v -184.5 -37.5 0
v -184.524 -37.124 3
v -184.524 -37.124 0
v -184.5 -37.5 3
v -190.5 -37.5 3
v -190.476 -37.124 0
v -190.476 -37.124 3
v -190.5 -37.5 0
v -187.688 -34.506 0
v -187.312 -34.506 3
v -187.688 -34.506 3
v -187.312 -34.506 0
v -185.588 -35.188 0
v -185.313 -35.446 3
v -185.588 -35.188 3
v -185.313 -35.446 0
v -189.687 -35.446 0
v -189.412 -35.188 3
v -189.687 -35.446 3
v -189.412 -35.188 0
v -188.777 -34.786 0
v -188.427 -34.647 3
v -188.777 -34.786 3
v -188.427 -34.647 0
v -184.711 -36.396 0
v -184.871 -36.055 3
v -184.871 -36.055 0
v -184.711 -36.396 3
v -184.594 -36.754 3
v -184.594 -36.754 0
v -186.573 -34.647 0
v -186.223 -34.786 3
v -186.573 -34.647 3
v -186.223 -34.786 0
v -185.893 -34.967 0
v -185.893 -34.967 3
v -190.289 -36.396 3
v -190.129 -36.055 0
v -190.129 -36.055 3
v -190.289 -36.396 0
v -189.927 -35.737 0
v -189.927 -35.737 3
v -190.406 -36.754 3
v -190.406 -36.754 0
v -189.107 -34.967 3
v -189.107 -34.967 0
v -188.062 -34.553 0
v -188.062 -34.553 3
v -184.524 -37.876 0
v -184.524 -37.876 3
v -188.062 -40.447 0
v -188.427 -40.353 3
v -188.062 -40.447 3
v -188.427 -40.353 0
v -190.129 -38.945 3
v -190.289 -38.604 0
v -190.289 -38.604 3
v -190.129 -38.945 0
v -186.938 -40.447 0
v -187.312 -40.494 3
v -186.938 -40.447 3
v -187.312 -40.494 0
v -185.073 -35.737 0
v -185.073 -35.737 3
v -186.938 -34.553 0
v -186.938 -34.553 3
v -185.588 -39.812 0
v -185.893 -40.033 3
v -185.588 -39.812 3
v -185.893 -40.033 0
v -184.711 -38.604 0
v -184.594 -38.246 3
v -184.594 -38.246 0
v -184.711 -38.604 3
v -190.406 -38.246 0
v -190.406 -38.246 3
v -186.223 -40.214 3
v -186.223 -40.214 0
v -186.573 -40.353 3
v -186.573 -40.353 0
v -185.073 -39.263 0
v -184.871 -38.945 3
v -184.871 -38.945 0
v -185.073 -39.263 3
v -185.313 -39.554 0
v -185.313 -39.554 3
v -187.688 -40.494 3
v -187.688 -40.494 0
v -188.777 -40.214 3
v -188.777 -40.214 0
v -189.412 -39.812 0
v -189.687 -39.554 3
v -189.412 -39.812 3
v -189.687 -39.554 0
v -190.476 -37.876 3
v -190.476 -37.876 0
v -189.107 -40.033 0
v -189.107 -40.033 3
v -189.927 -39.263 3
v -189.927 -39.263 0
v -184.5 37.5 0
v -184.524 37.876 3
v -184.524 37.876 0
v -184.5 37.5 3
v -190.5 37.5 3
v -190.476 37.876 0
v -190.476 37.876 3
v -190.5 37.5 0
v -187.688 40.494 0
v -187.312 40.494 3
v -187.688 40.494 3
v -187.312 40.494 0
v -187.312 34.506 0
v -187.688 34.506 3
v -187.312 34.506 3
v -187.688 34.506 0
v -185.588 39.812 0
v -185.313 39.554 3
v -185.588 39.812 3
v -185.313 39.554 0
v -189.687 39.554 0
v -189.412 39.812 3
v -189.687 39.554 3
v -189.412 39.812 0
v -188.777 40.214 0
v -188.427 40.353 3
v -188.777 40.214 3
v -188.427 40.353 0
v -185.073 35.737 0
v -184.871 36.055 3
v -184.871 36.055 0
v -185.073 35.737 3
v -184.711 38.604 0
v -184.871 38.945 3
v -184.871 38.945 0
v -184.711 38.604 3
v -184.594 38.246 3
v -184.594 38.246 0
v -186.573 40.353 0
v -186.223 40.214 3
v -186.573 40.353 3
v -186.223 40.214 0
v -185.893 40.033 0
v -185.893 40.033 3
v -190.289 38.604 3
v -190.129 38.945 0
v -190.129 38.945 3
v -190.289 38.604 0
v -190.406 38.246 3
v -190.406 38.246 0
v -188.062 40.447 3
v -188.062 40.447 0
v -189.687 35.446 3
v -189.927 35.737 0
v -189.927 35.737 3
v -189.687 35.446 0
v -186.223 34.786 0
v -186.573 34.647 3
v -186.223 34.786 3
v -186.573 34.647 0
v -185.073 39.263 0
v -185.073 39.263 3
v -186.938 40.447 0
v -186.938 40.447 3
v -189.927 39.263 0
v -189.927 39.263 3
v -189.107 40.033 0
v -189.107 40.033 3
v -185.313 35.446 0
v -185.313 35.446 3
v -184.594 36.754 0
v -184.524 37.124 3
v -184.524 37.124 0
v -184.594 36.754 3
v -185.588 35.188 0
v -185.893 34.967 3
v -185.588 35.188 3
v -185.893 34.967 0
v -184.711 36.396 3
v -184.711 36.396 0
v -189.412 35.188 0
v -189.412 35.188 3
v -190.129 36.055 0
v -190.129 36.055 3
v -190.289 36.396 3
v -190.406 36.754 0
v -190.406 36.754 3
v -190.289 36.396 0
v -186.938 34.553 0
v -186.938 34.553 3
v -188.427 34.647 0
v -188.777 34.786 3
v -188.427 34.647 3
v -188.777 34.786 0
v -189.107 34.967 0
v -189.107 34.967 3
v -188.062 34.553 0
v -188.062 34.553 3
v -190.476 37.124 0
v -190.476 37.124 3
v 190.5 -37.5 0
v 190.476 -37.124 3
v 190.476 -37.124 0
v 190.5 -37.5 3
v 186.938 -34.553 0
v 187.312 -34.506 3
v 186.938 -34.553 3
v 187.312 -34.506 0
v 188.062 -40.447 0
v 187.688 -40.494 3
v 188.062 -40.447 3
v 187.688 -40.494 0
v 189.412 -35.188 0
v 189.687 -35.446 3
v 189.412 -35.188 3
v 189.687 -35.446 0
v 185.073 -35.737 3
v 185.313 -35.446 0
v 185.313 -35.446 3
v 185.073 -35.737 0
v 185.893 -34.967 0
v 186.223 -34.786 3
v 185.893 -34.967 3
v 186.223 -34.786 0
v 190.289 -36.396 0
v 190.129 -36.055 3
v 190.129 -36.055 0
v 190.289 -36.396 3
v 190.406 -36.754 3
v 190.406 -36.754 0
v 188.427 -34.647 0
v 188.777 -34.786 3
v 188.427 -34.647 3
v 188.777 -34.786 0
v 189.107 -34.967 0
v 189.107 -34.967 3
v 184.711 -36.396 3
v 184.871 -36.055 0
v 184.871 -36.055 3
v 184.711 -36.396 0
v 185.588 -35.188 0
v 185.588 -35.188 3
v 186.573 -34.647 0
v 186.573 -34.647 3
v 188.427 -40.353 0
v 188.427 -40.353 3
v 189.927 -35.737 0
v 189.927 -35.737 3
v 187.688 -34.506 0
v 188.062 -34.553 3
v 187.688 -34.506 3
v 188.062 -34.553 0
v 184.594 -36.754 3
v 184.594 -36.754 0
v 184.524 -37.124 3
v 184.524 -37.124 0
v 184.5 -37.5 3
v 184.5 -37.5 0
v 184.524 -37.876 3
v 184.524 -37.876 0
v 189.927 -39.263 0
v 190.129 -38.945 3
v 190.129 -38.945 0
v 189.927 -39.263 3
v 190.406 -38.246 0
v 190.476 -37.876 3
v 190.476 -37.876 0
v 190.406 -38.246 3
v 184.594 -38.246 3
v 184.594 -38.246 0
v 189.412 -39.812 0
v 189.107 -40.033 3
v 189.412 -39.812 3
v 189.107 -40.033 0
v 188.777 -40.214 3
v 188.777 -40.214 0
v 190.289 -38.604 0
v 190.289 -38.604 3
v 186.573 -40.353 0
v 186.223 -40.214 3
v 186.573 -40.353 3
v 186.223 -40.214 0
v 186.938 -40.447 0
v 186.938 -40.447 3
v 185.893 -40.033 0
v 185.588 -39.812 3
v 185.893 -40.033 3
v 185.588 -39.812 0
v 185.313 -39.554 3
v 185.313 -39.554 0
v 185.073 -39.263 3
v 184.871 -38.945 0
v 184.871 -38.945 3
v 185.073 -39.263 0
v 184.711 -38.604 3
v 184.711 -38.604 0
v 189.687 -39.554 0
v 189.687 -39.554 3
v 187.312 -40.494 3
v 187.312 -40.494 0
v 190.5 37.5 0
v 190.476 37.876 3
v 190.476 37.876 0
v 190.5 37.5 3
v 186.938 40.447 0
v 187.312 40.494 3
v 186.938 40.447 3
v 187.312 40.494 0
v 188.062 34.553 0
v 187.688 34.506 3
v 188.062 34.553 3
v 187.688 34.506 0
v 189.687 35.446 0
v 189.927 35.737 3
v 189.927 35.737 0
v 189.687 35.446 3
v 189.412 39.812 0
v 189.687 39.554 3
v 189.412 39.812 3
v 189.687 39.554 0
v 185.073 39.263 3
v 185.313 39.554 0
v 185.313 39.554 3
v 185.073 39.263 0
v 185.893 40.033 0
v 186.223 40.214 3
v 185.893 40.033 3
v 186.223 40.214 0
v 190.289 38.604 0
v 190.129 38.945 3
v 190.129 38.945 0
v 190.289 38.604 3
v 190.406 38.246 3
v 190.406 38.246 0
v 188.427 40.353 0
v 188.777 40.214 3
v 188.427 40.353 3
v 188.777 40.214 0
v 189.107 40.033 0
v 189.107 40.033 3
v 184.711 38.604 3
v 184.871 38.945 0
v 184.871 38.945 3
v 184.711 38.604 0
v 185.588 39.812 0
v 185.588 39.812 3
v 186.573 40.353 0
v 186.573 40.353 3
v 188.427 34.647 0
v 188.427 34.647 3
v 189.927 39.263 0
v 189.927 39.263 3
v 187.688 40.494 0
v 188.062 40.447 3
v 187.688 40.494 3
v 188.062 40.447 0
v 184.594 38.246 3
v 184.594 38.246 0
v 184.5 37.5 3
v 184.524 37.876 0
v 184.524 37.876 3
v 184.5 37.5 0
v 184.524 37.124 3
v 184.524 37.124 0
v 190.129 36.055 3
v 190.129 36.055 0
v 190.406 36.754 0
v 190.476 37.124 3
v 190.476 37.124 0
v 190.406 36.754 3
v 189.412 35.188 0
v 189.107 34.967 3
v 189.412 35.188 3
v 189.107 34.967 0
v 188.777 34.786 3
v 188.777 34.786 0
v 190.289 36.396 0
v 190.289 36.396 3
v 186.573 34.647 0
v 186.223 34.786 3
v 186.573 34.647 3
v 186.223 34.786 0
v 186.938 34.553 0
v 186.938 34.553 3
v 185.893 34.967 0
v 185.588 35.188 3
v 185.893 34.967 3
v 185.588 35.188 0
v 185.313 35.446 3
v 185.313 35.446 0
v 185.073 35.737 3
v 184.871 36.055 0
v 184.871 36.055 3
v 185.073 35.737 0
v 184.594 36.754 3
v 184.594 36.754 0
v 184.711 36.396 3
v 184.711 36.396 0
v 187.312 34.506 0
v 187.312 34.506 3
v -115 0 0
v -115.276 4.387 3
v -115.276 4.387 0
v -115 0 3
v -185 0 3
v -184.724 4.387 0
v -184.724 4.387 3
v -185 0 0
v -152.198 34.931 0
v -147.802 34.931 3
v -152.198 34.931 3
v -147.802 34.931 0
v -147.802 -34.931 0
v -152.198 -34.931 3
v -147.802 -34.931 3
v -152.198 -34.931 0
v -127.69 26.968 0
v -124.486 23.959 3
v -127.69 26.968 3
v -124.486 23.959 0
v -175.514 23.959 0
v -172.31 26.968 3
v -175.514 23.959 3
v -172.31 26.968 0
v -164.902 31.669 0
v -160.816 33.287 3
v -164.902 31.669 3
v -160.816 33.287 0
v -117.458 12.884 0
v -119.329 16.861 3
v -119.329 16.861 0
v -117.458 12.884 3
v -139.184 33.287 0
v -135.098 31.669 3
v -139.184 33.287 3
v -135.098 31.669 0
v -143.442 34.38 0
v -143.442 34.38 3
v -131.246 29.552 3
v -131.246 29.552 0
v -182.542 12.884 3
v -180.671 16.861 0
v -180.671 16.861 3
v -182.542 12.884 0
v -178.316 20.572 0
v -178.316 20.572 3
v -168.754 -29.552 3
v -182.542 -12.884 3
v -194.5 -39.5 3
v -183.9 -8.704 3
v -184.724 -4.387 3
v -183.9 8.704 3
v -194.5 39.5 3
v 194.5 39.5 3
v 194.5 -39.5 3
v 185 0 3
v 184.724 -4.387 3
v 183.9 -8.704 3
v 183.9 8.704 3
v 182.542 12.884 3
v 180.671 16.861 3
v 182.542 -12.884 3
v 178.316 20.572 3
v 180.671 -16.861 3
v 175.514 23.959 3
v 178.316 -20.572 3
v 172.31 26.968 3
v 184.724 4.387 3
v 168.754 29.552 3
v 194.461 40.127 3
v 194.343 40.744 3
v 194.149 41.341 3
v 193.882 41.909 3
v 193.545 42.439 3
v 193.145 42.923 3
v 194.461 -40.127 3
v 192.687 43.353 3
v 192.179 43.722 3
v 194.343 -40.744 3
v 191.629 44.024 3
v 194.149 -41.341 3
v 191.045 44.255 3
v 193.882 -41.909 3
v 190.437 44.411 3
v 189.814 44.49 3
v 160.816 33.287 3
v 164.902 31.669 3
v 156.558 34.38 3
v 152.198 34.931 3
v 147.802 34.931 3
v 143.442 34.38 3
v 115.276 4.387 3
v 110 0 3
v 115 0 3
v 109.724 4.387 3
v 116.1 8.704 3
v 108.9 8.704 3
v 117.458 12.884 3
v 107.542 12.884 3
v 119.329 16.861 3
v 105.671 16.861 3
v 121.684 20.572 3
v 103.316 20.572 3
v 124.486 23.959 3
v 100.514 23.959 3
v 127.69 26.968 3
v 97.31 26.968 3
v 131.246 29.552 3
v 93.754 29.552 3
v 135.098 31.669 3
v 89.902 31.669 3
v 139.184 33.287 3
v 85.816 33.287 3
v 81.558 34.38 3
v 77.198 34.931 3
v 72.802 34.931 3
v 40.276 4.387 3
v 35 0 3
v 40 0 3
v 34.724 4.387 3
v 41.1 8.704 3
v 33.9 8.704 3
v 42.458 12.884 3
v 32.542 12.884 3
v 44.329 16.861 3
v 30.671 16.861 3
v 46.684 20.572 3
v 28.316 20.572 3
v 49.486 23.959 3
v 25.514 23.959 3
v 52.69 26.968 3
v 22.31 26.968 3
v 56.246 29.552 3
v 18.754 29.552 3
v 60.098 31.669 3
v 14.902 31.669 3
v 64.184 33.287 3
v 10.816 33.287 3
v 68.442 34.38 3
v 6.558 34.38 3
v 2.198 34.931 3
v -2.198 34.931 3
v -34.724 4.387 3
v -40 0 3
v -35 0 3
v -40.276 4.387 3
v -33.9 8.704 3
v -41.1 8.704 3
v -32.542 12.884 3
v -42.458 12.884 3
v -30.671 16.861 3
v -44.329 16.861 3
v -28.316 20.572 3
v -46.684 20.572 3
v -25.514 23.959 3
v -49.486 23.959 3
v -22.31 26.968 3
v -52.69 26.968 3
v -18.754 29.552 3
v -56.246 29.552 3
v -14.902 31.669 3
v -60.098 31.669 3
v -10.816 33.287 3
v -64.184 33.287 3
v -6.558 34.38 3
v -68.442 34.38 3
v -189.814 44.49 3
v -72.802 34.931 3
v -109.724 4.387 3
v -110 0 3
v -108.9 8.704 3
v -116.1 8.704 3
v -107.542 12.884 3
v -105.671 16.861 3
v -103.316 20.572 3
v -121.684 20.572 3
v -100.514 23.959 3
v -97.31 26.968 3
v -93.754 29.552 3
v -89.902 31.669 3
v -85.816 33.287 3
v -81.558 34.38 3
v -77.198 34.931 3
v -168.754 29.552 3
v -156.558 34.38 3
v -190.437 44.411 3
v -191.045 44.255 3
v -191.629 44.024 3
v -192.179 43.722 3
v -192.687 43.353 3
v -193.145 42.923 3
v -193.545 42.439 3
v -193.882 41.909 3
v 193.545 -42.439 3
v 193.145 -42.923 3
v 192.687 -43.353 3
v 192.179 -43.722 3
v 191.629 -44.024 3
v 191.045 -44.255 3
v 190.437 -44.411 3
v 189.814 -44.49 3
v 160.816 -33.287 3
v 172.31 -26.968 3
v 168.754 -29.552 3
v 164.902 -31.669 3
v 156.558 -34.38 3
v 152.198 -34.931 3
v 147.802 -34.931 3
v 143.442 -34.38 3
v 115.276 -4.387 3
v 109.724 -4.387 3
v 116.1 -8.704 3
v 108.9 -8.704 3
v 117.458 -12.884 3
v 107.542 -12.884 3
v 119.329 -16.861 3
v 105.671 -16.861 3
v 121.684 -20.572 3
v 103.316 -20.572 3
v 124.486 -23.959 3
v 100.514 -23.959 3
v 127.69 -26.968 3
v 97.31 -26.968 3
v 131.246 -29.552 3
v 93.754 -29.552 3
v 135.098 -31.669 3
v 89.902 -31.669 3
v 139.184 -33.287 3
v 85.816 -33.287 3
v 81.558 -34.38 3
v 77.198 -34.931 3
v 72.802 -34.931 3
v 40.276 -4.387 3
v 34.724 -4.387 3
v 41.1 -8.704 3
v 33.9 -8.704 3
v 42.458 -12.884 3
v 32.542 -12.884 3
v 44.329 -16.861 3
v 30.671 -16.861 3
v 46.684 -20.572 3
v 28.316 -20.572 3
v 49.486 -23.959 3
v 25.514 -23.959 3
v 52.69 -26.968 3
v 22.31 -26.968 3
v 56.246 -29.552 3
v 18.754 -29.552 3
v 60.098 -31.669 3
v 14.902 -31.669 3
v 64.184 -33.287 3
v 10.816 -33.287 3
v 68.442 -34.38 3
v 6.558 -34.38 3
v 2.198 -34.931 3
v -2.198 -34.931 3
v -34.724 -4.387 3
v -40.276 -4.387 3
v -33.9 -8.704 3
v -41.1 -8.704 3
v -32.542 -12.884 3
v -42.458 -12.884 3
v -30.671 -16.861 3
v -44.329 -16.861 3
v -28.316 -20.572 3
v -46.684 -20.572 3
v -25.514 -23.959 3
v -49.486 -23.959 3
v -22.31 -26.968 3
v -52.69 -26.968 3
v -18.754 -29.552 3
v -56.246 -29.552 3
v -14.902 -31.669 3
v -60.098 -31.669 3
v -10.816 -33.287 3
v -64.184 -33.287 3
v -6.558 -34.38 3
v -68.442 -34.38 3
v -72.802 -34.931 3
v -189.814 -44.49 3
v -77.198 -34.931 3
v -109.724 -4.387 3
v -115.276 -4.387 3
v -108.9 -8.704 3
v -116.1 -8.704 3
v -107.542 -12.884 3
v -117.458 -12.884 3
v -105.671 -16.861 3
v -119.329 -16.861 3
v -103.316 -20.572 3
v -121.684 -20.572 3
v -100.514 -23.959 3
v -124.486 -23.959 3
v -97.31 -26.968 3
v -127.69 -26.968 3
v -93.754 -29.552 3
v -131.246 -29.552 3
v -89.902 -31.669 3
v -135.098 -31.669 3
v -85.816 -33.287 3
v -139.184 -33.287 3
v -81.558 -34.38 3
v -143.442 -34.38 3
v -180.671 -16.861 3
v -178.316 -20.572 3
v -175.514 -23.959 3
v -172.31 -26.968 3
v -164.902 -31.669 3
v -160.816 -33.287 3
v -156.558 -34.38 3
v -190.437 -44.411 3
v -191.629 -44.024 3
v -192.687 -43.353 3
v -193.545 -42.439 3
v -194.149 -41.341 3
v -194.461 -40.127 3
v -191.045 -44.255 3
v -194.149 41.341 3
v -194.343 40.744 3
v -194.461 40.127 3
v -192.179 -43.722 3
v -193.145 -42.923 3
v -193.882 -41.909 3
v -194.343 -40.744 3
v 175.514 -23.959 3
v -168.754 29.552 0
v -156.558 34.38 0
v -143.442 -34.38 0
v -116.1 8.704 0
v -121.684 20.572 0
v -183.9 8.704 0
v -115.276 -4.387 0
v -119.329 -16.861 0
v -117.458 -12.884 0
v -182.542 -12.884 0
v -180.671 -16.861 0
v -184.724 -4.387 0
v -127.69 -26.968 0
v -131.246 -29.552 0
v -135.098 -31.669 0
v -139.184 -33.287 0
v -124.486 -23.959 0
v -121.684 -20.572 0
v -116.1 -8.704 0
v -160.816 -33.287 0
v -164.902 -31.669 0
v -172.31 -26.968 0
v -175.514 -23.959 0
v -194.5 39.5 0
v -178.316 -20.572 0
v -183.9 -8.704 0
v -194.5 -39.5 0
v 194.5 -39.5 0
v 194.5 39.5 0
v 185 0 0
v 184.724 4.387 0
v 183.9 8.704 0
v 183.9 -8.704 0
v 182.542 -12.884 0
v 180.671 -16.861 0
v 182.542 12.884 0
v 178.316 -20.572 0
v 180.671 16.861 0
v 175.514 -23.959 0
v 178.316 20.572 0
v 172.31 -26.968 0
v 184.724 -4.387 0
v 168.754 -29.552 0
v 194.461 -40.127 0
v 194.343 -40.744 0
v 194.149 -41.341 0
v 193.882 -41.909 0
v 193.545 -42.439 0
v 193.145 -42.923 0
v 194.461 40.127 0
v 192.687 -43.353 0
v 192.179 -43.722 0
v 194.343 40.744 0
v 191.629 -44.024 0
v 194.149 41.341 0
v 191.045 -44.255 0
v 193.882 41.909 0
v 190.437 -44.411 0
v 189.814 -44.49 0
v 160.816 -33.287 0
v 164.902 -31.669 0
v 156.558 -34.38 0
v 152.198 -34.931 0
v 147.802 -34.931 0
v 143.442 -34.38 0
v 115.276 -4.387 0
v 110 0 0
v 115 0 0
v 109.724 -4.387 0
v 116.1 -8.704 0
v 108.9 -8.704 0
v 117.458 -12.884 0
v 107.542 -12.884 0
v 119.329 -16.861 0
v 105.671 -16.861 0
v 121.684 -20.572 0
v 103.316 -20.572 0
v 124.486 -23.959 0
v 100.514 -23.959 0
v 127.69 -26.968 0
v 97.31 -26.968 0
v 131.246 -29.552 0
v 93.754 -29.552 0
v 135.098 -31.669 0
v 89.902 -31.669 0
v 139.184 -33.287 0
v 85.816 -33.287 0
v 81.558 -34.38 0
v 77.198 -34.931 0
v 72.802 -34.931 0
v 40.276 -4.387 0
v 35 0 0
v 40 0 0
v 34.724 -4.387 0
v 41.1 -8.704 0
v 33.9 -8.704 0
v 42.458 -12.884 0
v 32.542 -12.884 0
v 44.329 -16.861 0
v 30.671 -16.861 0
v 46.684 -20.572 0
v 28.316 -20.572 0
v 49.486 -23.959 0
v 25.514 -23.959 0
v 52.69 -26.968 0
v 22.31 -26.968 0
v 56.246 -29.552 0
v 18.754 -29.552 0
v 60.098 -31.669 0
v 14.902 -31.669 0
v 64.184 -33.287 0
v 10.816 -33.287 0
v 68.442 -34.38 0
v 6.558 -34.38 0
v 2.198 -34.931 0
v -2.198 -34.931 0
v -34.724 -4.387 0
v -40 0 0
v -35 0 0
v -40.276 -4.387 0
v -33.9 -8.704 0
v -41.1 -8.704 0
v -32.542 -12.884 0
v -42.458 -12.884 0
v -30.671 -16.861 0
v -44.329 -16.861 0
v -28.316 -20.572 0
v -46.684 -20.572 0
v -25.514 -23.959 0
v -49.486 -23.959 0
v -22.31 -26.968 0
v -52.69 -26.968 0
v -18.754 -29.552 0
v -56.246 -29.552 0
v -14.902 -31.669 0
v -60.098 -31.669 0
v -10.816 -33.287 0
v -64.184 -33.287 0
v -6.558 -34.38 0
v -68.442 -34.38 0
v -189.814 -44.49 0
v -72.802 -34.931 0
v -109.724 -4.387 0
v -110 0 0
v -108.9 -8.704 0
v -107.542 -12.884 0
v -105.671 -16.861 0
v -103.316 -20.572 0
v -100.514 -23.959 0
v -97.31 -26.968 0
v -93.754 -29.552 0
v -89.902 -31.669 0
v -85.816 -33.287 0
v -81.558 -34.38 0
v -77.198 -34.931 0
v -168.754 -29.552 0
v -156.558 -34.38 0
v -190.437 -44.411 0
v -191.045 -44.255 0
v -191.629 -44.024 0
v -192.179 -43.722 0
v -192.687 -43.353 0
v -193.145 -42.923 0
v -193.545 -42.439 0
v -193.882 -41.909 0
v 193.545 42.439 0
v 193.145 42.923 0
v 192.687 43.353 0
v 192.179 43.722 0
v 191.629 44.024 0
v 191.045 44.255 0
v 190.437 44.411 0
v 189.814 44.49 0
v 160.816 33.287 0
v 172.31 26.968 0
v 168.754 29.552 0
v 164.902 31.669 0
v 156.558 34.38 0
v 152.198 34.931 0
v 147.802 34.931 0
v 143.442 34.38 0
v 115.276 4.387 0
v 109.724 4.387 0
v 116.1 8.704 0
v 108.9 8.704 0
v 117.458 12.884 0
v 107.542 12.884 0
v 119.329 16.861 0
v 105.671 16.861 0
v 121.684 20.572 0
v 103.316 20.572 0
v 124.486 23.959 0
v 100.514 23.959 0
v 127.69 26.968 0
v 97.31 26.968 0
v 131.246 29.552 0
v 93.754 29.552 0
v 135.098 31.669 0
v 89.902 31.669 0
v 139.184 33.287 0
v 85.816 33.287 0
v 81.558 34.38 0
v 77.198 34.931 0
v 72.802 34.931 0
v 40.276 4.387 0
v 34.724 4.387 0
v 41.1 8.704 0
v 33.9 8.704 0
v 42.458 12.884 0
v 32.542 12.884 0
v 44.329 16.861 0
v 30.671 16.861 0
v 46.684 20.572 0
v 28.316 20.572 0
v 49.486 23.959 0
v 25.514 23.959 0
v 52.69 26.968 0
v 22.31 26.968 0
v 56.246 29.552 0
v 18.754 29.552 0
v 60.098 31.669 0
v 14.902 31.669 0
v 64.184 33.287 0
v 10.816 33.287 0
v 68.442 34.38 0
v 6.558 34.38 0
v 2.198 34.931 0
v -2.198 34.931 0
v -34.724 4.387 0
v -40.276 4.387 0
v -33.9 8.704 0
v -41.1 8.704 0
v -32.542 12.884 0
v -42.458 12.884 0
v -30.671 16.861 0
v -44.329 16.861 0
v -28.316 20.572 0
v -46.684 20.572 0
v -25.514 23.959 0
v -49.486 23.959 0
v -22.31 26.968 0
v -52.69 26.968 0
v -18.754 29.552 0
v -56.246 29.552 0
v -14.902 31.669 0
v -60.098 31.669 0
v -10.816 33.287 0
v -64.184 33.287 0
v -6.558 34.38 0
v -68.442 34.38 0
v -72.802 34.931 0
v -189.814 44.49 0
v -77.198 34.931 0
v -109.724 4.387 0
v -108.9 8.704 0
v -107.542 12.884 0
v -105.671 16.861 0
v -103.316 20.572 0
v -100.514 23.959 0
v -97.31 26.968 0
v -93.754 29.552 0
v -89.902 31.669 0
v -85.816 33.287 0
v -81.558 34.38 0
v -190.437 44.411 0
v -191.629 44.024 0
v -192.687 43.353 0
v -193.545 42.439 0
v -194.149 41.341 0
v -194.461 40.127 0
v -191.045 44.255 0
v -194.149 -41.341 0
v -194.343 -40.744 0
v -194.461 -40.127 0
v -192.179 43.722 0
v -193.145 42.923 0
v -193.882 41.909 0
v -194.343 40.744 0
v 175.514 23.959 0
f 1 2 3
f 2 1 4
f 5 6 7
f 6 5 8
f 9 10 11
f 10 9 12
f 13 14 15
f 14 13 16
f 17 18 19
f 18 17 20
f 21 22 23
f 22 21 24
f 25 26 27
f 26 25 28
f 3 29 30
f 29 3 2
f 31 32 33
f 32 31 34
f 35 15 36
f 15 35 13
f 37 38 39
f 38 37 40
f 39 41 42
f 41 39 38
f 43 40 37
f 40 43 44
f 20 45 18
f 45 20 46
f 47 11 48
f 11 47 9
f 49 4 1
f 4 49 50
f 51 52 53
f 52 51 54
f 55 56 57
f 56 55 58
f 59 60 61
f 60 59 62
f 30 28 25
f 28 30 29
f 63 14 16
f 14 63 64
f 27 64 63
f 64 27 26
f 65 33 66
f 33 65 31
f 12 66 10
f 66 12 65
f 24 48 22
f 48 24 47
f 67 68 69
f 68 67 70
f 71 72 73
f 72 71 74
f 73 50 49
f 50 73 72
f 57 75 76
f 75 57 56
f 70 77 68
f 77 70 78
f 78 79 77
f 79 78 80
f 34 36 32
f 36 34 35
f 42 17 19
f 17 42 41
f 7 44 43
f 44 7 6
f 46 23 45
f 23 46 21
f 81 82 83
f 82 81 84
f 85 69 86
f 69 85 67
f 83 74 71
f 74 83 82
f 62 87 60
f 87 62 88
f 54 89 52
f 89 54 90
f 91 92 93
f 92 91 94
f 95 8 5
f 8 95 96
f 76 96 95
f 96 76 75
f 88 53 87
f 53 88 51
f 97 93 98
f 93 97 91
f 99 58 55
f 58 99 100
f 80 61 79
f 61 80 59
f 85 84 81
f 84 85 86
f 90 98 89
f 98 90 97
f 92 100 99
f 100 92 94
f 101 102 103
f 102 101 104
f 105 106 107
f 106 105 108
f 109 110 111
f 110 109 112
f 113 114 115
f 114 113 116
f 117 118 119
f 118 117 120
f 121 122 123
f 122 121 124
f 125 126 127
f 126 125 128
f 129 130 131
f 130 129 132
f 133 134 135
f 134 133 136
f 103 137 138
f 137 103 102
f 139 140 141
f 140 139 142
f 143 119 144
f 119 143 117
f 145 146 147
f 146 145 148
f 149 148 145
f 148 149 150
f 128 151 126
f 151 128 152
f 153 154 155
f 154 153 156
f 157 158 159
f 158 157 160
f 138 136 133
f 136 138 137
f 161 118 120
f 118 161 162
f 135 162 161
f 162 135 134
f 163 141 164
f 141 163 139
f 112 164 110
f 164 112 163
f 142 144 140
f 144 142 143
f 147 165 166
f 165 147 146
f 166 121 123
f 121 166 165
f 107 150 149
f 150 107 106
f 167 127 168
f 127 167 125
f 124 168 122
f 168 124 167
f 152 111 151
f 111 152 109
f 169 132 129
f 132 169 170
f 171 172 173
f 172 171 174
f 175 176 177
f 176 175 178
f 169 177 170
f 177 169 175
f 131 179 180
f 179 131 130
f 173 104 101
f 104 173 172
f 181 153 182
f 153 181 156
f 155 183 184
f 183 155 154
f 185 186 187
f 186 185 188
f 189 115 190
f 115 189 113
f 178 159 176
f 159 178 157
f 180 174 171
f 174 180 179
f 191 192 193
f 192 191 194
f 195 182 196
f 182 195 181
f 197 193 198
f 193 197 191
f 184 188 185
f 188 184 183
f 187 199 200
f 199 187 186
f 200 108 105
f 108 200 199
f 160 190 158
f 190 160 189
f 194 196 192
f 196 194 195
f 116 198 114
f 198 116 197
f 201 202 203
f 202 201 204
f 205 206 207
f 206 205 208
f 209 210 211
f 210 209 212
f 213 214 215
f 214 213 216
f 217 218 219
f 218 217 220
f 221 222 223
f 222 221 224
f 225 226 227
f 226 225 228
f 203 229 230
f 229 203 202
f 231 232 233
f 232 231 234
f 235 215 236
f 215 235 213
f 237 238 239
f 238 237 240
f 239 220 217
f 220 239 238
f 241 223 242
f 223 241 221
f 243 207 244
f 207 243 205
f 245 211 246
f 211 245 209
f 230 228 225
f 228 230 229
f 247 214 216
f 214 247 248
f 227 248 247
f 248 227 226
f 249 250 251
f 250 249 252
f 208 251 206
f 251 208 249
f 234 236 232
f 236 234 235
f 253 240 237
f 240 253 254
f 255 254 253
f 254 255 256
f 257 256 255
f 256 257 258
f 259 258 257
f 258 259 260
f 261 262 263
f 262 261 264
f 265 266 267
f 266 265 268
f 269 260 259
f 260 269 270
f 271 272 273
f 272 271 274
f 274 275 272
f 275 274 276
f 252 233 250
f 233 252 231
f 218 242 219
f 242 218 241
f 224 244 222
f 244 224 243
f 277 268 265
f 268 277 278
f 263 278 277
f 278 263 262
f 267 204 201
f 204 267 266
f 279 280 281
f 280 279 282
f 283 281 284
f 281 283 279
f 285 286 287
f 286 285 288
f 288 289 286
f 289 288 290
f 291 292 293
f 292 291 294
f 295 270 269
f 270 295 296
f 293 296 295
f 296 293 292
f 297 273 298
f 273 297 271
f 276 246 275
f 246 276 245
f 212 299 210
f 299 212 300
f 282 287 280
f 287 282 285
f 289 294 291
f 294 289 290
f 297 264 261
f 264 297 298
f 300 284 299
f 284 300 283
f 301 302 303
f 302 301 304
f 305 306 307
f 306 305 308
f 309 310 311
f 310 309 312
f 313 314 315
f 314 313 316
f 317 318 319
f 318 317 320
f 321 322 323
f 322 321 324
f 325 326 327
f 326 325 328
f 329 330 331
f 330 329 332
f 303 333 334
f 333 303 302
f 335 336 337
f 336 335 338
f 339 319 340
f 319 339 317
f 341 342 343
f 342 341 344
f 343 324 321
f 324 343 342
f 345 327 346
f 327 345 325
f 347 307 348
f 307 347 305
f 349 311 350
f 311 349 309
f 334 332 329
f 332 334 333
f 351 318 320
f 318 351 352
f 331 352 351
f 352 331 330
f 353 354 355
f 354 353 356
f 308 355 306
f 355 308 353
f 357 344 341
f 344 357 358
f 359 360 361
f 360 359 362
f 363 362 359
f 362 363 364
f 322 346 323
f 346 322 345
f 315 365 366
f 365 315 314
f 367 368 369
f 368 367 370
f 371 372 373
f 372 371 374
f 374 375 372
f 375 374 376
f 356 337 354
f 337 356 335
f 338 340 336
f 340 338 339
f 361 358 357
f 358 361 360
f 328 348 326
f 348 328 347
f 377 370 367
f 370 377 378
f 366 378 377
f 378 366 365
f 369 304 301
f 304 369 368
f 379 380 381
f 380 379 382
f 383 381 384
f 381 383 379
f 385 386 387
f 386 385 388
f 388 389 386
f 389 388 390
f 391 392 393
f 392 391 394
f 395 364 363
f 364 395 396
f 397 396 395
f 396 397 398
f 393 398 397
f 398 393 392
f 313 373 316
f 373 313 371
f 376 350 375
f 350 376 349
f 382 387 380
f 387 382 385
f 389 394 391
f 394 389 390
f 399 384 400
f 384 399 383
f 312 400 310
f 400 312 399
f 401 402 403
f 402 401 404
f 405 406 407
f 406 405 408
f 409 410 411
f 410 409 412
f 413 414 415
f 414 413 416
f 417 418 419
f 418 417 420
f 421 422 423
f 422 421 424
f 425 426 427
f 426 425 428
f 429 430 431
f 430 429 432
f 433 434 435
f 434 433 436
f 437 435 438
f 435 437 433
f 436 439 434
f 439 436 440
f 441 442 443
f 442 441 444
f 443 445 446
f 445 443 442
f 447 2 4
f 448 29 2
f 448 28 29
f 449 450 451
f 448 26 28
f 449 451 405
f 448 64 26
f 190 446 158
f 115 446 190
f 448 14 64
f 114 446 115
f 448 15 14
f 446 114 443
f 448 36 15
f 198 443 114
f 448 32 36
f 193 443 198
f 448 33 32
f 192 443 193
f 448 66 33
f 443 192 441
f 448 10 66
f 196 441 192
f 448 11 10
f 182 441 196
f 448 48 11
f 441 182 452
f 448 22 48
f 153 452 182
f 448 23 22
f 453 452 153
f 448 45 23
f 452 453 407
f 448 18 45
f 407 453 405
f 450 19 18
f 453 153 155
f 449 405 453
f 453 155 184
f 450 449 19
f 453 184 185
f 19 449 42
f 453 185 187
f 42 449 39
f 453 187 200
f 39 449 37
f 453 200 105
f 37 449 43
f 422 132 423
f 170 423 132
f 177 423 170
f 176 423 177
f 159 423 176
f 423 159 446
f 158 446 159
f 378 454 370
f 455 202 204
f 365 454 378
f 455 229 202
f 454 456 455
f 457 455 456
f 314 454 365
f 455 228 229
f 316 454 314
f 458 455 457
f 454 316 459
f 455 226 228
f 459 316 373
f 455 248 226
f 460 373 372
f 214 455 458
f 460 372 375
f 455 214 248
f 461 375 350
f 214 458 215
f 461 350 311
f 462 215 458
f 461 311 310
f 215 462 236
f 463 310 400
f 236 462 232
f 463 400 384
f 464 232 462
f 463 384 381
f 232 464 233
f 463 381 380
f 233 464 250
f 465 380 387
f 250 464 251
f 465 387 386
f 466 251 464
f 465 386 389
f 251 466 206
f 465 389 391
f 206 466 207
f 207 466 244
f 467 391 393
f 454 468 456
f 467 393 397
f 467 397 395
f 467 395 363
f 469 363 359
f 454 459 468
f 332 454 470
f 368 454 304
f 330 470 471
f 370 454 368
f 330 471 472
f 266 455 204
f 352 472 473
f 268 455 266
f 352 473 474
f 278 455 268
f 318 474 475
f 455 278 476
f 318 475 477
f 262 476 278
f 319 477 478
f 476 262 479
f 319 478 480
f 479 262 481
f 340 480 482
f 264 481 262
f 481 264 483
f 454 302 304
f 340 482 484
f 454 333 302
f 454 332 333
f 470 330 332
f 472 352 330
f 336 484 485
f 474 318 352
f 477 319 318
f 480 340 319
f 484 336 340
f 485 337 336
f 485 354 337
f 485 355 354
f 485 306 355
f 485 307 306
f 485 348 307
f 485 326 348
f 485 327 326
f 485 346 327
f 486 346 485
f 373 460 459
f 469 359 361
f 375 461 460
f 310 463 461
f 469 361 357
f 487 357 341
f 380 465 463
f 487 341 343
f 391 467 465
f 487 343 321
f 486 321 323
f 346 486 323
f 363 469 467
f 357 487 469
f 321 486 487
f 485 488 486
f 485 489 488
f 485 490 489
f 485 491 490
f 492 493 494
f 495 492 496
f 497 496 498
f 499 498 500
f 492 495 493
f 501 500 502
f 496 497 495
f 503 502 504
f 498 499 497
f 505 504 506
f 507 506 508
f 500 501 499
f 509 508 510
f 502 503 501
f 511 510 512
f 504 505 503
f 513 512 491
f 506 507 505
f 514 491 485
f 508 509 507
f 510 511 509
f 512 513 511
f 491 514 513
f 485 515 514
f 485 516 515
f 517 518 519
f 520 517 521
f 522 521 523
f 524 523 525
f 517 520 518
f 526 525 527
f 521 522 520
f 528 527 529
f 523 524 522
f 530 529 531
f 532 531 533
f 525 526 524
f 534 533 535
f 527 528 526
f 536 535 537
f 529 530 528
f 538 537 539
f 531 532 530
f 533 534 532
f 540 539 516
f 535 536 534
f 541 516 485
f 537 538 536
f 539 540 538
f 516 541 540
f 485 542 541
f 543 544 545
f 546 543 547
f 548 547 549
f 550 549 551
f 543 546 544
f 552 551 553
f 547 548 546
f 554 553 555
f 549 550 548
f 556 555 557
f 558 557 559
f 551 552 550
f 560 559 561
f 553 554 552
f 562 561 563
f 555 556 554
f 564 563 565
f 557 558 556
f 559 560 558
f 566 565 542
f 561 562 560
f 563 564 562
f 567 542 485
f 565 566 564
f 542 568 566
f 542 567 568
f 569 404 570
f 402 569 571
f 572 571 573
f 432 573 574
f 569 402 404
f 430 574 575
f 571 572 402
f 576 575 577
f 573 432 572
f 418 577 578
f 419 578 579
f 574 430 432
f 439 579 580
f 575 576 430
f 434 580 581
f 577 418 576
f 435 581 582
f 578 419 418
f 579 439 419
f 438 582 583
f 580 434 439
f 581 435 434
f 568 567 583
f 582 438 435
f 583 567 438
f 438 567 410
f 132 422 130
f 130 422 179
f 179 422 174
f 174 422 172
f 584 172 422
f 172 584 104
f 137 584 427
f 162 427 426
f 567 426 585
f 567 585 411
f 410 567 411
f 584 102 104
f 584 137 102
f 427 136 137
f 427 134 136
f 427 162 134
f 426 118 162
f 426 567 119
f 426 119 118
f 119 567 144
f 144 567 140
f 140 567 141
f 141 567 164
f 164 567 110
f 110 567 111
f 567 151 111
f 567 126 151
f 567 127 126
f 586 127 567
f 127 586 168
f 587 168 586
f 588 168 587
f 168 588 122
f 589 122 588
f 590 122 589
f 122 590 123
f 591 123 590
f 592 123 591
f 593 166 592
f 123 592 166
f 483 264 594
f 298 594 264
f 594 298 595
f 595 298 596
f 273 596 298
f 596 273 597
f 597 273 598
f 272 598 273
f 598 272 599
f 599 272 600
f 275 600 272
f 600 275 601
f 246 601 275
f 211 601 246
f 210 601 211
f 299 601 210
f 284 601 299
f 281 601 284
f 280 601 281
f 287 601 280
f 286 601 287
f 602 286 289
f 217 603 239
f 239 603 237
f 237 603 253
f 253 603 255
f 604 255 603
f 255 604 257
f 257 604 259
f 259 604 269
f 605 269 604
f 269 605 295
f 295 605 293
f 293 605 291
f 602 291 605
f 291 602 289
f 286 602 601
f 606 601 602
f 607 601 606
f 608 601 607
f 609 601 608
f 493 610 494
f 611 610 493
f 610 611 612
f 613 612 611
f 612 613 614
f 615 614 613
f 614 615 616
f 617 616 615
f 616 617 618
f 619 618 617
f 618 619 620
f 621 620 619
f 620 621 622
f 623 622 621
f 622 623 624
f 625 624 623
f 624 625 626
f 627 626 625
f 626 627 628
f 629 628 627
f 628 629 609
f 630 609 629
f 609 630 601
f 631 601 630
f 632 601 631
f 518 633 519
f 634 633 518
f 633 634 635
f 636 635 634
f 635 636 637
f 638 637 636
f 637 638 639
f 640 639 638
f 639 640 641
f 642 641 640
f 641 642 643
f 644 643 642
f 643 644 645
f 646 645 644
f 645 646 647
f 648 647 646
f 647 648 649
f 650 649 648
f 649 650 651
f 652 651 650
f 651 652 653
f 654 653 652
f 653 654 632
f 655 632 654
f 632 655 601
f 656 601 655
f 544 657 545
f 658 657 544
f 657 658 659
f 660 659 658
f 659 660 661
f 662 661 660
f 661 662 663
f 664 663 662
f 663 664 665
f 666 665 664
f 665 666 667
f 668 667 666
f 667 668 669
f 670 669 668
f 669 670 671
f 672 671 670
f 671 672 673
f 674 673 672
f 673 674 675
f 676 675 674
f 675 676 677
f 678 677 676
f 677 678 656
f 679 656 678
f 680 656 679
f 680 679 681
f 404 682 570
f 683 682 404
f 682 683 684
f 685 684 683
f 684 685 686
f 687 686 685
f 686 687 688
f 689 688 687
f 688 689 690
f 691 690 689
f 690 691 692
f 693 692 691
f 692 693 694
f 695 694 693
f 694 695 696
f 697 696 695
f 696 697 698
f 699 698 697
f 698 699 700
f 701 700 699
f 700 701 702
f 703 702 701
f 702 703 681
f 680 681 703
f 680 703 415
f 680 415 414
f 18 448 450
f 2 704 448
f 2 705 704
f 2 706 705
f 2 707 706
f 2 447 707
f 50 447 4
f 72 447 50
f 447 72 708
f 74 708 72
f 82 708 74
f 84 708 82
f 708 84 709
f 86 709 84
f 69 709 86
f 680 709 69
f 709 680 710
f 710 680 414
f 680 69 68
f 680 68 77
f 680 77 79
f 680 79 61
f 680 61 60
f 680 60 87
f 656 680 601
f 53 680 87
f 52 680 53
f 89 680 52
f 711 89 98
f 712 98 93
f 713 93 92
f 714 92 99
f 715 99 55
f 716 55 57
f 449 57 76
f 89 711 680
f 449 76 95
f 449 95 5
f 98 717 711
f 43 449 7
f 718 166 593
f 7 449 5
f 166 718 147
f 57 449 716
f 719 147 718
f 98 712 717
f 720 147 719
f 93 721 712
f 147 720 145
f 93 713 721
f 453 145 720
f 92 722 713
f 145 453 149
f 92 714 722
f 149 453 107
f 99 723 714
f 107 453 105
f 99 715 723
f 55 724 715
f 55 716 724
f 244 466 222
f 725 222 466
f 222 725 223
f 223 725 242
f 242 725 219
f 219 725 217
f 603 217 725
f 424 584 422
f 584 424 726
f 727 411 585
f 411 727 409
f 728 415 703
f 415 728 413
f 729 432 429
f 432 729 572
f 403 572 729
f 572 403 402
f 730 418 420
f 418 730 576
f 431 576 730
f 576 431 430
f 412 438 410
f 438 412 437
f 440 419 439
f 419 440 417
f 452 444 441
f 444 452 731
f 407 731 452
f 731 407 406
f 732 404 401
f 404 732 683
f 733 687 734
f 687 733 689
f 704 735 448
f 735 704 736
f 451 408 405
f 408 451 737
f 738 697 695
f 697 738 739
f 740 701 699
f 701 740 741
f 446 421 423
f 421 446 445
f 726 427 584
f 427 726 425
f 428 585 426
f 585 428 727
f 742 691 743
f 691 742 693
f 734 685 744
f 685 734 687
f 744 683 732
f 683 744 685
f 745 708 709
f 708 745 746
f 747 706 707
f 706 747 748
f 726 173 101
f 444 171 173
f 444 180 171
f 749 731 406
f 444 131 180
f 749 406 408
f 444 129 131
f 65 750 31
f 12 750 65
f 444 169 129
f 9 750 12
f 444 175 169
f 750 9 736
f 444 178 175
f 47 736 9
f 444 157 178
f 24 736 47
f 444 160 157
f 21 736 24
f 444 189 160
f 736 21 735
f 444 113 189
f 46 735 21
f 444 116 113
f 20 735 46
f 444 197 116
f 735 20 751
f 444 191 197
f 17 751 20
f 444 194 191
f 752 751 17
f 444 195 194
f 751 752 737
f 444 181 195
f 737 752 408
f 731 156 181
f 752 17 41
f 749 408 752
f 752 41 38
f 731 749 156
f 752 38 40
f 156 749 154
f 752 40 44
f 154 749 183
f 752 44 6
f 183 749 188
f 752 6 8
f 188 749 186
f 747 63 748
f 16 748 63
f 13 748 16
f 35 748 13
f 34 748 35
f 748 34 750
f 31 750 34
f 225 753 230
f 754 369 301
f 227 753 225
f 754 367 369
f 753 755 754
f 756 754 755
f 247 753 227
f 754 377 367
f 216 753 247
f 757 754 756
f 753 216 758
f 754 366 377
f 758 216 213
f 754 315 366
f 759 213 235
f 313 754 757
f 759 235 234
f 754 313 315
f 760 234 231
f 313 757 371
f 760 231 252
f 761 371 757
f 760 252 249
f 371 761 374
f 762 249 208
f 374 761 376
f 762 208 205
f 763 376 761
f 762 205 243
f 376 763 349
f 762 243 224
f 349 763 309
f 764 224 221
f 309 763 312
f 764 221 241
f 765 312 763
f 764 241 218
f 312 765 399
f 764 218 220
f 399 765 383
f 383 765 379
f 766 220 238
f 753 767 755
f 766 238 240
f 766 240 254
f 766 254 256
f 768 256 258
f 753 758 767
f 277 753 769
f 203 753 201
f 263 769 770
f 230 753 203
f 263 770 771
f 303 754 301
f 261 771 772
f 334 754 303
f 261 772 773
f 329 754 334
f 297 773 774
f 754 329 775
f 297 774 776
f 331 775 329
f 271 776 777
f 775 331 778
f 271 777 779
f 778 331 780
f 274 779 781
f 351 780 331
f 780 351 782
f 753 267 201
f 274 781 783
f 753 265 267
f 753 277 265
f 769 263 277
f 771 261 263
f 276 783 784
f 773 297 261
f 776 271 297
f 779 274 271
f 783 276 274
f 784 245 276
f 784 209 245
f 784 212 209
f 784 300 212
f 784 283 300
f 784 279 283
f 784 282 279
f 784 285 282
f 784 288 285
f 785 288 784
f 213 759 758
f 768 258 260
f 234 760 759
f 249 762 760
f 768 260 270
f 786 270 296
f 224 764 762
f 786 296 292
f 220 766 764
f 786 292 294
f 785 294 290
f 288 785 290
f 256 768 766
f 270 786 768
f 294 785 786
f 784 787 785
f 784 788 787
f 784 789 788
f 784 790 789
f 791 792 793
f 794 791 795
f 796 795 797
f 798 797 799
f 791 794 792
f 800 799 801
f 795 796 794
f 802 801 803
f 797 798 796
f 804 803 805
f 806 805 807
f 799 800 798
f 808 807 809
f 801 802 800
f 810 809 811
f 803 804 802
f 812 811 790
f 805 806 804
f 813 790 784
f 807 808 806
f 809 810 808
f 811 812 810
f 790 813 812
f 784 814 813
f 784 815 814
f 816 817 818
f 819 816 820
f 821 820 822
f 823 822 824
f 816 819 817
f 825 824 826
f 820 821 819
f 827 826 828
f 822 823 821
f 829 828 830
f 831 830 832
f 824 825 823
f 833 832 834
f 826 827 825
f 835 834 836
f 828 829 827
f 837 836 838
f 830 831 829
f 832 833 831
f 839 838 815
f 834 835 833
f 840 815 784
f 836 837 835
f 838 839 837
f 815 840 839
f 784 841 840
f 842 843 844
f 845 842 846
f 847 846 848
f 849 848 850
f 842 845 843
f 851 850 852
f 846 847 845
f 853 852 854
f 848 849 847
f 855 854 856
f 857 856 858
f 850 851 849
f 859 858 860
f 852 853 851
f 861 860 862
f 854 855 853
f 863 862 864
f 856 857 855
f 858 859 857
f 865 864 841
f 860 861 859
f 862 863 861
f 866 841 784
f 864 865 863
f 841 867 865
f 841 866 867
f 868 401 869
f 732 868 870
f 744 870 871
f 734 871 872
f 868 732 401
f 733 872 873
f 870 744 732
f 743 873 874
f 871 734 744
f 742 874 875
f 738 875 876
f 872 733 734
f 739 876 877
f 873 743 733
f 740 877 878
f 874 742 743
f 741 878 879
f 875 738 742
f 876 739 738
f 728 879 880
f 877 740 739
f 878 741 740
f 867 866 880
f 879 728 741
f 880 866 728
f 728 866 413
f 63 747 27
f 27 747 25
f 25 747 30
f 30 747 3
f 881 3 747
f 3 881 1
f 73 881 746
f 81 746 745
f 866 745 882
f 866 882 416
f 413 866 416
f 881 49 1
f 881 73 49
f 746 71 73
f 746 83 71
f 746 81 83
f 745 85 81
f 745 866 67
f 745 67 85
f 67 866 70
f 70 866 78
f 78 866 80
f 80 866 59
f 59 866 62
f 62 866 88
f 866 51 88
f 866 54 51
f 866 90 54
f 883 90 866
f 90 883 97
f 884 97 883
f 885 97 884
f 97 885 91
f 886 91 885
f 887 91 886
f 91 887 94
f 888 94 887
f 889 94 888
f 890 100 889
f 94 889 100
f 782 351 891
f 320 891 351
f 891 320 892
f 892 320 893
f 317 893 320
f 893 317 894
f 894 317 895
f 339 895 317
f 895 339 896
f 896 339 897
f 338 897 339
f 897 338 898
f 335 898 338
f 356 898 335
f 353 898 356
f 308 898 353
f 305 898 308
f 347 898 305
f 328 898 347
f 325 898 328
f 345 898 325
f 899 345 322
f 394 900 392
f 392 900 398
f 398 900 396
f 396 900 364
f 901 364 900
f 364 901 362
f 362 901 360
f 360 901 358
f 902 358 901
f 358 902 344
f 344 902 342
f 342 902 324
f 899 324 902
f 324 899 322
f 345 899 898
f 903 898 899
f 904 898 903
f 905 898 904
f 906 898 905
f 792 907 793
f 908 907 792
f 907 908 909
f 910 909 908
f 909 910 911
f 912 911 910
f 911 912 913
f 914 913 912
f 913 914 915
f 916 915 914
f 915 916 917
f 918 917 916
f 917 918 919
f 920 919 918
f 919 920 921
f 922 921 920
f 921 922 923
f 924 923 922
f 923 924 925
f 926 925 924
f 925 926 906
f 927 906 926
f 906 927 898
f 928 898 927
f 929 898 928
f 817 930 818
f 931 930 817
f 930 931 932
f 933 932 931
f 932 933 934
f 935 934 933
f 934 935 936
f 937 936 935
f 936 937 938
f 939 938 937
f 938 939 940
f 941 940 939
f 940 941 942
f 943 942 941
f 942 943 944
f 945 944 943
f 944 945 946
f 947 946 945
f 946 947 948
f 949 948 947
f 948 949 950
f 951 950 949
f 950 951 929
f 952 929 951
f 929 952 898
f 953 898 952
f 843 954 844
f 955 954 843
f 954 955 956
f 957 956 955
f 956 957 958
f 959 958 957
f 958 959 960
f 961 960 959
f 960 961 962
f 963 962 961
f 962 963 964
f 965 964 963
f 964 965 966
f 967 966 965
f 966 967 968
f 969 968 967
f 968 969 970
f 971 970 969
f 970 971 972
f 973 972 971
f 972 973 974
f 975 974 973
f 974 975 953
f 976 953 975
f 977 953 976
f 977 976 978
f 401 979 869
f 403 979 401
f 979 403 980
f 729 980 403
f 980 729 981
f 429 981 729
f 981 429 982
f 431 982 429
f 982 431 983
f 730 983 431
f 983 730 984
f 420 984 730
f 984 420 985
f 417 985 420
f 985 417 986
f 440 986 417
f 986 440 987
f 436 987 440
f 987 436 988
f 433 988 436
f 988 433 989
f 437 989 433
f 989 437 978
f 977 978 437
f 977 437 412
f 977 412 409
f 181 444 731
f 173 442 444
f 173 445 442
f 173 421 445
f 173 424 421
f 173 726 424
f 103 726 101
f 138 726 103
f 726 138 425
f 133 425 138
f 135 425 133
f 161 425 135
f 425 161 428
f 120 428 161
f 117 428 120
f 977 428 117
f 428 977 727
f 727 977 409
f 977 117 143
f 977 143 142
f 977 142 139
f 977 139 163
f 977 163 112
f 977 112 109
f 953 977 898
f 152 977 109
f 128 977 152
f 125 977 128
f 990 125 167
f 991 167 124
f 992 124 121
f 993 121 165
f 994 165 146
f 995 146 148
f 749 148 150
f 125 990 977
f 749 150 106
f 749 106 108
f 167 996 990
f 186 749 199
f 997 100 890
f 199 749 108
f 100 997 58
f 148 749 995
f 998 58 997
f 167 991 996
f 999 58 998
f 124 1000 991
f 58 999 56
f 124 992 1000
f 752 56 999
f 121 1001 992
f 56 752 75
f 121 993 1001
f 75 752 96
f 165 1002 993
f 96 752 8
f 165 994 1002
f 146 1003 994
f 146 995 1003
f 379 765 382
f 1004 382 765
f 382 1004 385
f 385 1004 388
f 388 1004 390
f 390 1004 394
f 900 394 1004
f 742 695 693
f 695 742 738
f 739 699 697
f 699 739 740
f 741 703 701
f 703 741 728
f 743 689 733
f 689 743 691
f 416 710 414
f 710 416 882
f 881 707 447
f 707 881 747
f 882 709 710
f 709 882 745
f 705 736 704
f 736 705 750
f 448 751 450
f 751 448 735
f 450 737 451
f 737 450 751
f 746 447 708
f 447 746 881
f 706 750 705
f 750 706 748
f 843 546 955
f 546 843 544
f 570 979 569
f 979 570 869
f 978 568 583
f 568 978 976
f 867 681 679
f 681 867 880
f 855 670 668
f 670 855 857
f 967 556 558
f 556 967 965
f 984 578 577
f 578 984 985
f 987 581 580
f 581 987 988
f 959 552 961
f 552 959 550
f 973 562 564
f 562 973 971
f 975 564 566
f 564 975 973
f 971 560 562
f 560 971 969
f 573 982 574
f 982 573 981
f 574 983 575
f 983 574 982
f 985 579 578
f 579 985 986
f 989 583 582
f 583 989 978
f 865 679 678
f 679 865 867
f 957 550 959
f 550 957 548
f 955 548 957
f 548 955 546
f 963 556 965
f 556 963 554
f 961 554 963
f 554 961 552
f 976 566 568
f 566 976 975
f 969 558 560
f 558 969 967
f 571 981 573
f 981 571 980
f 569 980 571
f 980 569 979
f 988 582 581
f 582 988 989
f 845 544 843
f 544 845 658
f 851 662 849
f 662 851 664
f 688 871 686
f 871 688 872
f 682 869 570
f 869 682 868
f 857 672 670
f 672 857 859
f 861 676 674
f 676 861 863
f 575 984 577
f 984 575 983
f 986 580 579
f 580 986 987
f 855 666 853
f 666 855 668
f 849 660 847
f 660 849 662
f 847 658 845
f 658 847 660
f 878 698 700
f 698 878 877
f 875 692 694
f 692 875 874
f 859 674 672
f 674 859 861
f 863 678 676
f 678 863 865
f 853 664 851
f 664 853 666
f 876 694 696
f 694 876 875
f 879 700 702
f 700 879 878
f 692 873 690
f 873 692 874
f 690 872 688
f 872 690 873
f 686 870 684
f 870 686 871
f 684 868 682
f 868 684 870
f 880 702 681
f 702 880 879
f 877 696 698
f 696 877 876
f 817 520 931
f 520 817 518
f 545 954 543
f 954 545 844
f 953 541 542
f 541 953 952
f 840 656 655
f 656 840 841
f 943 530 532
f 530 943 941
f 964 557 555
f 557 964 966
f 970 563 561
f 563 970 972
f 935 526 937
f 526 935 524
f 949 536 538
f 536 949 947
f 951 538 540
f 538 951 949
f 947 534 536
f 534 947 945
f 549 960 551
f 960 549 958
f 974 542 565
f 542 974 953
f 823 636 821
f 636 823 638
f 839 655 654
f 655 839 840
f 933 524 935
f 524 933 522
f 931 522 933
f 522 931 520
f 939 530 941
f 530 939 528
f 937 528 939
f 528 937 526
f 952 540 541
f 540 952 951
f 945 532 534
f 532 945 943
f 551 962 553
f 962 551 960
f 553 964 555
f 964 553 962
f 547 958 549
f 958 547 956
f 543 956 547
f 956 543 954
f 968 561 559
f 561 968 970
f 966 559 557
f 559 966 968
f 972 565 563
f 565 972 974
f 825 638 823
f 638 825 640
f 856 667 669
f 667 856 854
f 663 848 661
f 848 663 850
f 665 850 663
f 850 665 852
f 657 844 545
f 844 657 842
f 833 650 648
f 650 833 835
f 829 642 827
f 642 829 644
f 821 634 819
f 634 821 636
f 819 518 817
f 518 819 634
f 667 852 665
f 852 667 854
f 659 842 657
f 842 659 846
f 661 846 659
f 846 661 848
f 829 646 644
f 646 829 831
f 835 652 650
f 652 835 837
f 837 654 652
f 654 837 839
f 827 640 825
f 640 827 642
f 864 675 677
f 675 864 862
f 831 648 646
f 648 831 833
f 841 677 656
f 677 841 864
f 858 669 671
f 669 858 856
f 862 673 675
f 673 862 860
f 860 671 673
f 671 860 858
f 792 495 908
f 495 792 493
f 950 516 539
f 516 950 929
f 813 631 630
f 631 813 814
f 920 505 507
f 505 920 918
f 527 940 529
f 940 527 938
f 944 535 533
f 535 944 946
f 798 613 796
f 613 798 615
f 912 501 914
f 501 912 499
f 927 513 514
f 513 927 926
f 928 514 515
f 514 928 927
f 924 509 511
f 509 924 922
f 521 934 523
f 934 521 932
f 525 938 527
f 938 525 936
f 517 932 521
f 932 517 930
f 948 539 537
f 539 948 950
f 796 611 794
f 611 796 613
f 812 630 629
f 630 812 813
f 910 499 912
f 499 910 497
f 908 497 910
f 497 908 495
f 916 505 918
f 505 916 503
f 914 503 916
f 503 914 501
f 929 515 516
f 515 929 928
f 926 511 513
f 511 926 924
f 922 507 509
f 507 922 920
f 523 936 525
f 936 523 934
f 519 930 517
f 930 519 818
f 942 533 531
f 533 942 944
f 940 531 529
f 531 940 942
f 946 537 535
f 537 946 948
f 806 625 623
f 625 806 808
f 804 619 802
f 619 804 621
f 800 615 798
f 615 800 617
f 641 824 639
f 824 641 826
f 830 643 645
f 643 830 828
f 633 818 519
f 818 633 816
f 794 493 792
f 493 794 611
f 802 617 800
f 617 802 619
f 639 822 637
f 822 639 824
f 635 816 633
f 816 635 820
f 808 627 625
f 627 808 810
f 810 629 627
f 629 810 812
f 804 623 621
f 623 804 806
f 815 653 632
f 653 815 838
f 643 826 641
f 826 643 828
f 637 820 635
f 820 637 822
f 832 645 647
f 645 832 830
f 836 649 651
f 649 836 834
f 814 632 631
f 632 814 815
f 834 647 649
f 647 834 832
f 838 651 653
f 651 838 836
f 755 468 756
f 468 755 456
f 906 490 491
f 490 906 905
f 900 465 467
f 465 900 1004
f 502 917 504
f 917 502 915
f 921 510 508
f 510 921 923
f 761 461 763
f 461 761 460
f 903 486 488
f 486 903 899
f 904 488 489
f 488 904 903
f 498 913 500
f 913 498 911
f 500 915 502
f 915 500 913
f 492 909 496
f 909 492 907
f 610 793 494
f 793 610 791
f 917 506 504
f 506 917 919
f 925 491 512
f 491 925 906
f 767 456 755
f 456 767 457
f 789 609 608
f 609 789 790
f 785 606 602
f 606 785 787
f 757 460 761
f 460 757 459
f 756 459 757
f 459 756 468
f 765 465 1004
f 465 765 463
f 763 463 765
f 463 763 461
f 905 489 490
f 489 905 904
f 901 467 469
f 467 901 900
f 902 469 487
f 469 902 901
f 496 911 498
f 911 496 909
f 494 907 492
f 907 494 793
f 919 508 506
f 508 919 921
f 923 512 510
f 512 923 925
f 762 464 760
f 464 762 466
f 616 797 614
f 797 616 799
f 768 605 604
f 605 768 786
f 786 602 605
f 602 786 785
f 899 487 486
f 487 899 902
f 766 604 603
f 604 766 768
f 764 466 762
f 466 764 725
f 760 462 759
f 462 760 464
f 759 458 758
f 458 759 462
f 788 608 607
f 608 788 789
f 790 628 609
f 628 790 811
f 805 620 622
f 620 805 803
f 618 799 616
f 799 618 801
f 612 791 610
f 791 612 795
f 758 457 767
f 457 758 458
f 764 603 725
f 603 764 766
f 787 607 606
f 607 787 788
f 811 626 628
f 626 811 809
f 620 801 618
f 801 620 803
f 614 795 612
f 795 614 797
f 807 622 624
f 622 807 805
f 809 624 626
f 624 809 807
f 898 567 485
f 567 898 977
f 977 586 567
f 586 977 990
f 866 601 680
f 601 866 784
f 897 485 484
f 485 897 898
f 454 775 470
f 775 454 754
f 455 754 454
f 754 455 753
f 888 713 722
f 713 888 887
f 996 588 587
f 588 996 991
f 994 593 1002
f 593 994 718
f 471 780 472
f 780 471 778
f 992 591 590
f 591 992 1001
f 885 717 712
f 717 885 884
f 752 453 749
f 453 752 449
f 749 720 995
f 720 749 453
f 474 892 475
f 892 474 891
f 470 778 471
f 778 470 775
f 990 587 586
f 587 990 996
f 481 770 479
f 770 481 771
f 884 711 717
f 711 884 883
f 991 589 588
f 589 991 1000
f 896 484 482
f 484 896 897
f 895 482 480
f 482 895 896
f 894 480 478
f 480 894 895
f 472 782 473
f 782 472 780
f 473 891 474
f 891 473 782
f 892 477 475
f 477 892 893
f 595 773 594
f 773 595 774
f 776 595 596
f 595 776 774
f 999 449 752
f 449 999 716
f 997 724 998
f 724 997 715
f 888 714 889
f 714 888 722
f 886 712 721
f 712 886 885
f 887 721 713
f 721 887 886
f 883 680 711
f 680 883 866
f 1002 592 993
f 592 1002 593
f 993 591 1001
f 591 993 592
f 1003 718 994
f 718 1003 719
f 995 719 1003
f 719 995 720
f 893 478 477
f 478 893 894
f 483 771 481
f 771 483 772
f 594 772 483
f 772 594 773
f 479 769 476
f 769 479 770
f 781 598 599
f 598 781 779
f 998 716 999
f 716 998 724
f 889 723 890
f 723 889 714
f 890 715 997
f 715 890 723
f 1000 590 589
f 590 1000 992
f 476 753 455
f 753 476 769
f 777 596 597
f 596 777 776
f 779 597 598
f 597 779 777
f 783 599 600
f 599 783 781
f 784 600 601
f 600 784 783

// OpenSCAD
$fn = 50;


difference() {
	union() {
		hull() {
			translate(v = [-189.5000000000, 39.5000000000, 0]) {
				cylinder(h = 3, r = 5);
			}
			translate(v = [189.5000000000, 39.5000000000, 0]) {
				cylinder(h = 3, r = 5);
			}
			translate(v = [-189.5000000000, -39.5000000000, 0]) {
				cylinder(h = 3, r = 5);
			}
			translate(v = [189.5000000000, -39.5000000000, 0]) {
				cylinder(h = 3, r = 5);
			}
		}
	}
	union() {
		#translate(v = [-187.5000000000, -37.5000000000, -100.0000000000]) {
			cylinder(h = 200, r = 3.0000000000);
		}
		#translate(v = [-187.5000000000, 37.5000000000, -100.0000000000]) {
			cylinder(h = 200, r = 3.0000000000);
		}
		#translate(v = [187.5000000000, -37.5000000000, -100.0000000000]) {
			cylinder(h = 200, r = 3.0000000000);
		}
		#translate(v = [187.5000000000, 37.5000000000, -100.0000000000]) {
			cylinder(h = 200, r = 3.0000000000);
		}
		#translate(v = [-150.0000000000, 0, 0]) {
			cylinder(h = 3, r = 35.0000000000);
		}
		#translate(v = [-75.0000000000, 0, 0]) {
			cylinder(h = 3, r = 35.0000000000);
		}
		#cylinder(h = 3, r = 35.0000000000);
		#translate(v = [75.0000000000, 0, 0]) {
			cylinder(h = 3, r = 35.0000000000);
		}
		#translate(v = [150.0000000000, 0, 0]) {
			cylinder(h = 3, r = 35.0000000000);
		}
	}
}
